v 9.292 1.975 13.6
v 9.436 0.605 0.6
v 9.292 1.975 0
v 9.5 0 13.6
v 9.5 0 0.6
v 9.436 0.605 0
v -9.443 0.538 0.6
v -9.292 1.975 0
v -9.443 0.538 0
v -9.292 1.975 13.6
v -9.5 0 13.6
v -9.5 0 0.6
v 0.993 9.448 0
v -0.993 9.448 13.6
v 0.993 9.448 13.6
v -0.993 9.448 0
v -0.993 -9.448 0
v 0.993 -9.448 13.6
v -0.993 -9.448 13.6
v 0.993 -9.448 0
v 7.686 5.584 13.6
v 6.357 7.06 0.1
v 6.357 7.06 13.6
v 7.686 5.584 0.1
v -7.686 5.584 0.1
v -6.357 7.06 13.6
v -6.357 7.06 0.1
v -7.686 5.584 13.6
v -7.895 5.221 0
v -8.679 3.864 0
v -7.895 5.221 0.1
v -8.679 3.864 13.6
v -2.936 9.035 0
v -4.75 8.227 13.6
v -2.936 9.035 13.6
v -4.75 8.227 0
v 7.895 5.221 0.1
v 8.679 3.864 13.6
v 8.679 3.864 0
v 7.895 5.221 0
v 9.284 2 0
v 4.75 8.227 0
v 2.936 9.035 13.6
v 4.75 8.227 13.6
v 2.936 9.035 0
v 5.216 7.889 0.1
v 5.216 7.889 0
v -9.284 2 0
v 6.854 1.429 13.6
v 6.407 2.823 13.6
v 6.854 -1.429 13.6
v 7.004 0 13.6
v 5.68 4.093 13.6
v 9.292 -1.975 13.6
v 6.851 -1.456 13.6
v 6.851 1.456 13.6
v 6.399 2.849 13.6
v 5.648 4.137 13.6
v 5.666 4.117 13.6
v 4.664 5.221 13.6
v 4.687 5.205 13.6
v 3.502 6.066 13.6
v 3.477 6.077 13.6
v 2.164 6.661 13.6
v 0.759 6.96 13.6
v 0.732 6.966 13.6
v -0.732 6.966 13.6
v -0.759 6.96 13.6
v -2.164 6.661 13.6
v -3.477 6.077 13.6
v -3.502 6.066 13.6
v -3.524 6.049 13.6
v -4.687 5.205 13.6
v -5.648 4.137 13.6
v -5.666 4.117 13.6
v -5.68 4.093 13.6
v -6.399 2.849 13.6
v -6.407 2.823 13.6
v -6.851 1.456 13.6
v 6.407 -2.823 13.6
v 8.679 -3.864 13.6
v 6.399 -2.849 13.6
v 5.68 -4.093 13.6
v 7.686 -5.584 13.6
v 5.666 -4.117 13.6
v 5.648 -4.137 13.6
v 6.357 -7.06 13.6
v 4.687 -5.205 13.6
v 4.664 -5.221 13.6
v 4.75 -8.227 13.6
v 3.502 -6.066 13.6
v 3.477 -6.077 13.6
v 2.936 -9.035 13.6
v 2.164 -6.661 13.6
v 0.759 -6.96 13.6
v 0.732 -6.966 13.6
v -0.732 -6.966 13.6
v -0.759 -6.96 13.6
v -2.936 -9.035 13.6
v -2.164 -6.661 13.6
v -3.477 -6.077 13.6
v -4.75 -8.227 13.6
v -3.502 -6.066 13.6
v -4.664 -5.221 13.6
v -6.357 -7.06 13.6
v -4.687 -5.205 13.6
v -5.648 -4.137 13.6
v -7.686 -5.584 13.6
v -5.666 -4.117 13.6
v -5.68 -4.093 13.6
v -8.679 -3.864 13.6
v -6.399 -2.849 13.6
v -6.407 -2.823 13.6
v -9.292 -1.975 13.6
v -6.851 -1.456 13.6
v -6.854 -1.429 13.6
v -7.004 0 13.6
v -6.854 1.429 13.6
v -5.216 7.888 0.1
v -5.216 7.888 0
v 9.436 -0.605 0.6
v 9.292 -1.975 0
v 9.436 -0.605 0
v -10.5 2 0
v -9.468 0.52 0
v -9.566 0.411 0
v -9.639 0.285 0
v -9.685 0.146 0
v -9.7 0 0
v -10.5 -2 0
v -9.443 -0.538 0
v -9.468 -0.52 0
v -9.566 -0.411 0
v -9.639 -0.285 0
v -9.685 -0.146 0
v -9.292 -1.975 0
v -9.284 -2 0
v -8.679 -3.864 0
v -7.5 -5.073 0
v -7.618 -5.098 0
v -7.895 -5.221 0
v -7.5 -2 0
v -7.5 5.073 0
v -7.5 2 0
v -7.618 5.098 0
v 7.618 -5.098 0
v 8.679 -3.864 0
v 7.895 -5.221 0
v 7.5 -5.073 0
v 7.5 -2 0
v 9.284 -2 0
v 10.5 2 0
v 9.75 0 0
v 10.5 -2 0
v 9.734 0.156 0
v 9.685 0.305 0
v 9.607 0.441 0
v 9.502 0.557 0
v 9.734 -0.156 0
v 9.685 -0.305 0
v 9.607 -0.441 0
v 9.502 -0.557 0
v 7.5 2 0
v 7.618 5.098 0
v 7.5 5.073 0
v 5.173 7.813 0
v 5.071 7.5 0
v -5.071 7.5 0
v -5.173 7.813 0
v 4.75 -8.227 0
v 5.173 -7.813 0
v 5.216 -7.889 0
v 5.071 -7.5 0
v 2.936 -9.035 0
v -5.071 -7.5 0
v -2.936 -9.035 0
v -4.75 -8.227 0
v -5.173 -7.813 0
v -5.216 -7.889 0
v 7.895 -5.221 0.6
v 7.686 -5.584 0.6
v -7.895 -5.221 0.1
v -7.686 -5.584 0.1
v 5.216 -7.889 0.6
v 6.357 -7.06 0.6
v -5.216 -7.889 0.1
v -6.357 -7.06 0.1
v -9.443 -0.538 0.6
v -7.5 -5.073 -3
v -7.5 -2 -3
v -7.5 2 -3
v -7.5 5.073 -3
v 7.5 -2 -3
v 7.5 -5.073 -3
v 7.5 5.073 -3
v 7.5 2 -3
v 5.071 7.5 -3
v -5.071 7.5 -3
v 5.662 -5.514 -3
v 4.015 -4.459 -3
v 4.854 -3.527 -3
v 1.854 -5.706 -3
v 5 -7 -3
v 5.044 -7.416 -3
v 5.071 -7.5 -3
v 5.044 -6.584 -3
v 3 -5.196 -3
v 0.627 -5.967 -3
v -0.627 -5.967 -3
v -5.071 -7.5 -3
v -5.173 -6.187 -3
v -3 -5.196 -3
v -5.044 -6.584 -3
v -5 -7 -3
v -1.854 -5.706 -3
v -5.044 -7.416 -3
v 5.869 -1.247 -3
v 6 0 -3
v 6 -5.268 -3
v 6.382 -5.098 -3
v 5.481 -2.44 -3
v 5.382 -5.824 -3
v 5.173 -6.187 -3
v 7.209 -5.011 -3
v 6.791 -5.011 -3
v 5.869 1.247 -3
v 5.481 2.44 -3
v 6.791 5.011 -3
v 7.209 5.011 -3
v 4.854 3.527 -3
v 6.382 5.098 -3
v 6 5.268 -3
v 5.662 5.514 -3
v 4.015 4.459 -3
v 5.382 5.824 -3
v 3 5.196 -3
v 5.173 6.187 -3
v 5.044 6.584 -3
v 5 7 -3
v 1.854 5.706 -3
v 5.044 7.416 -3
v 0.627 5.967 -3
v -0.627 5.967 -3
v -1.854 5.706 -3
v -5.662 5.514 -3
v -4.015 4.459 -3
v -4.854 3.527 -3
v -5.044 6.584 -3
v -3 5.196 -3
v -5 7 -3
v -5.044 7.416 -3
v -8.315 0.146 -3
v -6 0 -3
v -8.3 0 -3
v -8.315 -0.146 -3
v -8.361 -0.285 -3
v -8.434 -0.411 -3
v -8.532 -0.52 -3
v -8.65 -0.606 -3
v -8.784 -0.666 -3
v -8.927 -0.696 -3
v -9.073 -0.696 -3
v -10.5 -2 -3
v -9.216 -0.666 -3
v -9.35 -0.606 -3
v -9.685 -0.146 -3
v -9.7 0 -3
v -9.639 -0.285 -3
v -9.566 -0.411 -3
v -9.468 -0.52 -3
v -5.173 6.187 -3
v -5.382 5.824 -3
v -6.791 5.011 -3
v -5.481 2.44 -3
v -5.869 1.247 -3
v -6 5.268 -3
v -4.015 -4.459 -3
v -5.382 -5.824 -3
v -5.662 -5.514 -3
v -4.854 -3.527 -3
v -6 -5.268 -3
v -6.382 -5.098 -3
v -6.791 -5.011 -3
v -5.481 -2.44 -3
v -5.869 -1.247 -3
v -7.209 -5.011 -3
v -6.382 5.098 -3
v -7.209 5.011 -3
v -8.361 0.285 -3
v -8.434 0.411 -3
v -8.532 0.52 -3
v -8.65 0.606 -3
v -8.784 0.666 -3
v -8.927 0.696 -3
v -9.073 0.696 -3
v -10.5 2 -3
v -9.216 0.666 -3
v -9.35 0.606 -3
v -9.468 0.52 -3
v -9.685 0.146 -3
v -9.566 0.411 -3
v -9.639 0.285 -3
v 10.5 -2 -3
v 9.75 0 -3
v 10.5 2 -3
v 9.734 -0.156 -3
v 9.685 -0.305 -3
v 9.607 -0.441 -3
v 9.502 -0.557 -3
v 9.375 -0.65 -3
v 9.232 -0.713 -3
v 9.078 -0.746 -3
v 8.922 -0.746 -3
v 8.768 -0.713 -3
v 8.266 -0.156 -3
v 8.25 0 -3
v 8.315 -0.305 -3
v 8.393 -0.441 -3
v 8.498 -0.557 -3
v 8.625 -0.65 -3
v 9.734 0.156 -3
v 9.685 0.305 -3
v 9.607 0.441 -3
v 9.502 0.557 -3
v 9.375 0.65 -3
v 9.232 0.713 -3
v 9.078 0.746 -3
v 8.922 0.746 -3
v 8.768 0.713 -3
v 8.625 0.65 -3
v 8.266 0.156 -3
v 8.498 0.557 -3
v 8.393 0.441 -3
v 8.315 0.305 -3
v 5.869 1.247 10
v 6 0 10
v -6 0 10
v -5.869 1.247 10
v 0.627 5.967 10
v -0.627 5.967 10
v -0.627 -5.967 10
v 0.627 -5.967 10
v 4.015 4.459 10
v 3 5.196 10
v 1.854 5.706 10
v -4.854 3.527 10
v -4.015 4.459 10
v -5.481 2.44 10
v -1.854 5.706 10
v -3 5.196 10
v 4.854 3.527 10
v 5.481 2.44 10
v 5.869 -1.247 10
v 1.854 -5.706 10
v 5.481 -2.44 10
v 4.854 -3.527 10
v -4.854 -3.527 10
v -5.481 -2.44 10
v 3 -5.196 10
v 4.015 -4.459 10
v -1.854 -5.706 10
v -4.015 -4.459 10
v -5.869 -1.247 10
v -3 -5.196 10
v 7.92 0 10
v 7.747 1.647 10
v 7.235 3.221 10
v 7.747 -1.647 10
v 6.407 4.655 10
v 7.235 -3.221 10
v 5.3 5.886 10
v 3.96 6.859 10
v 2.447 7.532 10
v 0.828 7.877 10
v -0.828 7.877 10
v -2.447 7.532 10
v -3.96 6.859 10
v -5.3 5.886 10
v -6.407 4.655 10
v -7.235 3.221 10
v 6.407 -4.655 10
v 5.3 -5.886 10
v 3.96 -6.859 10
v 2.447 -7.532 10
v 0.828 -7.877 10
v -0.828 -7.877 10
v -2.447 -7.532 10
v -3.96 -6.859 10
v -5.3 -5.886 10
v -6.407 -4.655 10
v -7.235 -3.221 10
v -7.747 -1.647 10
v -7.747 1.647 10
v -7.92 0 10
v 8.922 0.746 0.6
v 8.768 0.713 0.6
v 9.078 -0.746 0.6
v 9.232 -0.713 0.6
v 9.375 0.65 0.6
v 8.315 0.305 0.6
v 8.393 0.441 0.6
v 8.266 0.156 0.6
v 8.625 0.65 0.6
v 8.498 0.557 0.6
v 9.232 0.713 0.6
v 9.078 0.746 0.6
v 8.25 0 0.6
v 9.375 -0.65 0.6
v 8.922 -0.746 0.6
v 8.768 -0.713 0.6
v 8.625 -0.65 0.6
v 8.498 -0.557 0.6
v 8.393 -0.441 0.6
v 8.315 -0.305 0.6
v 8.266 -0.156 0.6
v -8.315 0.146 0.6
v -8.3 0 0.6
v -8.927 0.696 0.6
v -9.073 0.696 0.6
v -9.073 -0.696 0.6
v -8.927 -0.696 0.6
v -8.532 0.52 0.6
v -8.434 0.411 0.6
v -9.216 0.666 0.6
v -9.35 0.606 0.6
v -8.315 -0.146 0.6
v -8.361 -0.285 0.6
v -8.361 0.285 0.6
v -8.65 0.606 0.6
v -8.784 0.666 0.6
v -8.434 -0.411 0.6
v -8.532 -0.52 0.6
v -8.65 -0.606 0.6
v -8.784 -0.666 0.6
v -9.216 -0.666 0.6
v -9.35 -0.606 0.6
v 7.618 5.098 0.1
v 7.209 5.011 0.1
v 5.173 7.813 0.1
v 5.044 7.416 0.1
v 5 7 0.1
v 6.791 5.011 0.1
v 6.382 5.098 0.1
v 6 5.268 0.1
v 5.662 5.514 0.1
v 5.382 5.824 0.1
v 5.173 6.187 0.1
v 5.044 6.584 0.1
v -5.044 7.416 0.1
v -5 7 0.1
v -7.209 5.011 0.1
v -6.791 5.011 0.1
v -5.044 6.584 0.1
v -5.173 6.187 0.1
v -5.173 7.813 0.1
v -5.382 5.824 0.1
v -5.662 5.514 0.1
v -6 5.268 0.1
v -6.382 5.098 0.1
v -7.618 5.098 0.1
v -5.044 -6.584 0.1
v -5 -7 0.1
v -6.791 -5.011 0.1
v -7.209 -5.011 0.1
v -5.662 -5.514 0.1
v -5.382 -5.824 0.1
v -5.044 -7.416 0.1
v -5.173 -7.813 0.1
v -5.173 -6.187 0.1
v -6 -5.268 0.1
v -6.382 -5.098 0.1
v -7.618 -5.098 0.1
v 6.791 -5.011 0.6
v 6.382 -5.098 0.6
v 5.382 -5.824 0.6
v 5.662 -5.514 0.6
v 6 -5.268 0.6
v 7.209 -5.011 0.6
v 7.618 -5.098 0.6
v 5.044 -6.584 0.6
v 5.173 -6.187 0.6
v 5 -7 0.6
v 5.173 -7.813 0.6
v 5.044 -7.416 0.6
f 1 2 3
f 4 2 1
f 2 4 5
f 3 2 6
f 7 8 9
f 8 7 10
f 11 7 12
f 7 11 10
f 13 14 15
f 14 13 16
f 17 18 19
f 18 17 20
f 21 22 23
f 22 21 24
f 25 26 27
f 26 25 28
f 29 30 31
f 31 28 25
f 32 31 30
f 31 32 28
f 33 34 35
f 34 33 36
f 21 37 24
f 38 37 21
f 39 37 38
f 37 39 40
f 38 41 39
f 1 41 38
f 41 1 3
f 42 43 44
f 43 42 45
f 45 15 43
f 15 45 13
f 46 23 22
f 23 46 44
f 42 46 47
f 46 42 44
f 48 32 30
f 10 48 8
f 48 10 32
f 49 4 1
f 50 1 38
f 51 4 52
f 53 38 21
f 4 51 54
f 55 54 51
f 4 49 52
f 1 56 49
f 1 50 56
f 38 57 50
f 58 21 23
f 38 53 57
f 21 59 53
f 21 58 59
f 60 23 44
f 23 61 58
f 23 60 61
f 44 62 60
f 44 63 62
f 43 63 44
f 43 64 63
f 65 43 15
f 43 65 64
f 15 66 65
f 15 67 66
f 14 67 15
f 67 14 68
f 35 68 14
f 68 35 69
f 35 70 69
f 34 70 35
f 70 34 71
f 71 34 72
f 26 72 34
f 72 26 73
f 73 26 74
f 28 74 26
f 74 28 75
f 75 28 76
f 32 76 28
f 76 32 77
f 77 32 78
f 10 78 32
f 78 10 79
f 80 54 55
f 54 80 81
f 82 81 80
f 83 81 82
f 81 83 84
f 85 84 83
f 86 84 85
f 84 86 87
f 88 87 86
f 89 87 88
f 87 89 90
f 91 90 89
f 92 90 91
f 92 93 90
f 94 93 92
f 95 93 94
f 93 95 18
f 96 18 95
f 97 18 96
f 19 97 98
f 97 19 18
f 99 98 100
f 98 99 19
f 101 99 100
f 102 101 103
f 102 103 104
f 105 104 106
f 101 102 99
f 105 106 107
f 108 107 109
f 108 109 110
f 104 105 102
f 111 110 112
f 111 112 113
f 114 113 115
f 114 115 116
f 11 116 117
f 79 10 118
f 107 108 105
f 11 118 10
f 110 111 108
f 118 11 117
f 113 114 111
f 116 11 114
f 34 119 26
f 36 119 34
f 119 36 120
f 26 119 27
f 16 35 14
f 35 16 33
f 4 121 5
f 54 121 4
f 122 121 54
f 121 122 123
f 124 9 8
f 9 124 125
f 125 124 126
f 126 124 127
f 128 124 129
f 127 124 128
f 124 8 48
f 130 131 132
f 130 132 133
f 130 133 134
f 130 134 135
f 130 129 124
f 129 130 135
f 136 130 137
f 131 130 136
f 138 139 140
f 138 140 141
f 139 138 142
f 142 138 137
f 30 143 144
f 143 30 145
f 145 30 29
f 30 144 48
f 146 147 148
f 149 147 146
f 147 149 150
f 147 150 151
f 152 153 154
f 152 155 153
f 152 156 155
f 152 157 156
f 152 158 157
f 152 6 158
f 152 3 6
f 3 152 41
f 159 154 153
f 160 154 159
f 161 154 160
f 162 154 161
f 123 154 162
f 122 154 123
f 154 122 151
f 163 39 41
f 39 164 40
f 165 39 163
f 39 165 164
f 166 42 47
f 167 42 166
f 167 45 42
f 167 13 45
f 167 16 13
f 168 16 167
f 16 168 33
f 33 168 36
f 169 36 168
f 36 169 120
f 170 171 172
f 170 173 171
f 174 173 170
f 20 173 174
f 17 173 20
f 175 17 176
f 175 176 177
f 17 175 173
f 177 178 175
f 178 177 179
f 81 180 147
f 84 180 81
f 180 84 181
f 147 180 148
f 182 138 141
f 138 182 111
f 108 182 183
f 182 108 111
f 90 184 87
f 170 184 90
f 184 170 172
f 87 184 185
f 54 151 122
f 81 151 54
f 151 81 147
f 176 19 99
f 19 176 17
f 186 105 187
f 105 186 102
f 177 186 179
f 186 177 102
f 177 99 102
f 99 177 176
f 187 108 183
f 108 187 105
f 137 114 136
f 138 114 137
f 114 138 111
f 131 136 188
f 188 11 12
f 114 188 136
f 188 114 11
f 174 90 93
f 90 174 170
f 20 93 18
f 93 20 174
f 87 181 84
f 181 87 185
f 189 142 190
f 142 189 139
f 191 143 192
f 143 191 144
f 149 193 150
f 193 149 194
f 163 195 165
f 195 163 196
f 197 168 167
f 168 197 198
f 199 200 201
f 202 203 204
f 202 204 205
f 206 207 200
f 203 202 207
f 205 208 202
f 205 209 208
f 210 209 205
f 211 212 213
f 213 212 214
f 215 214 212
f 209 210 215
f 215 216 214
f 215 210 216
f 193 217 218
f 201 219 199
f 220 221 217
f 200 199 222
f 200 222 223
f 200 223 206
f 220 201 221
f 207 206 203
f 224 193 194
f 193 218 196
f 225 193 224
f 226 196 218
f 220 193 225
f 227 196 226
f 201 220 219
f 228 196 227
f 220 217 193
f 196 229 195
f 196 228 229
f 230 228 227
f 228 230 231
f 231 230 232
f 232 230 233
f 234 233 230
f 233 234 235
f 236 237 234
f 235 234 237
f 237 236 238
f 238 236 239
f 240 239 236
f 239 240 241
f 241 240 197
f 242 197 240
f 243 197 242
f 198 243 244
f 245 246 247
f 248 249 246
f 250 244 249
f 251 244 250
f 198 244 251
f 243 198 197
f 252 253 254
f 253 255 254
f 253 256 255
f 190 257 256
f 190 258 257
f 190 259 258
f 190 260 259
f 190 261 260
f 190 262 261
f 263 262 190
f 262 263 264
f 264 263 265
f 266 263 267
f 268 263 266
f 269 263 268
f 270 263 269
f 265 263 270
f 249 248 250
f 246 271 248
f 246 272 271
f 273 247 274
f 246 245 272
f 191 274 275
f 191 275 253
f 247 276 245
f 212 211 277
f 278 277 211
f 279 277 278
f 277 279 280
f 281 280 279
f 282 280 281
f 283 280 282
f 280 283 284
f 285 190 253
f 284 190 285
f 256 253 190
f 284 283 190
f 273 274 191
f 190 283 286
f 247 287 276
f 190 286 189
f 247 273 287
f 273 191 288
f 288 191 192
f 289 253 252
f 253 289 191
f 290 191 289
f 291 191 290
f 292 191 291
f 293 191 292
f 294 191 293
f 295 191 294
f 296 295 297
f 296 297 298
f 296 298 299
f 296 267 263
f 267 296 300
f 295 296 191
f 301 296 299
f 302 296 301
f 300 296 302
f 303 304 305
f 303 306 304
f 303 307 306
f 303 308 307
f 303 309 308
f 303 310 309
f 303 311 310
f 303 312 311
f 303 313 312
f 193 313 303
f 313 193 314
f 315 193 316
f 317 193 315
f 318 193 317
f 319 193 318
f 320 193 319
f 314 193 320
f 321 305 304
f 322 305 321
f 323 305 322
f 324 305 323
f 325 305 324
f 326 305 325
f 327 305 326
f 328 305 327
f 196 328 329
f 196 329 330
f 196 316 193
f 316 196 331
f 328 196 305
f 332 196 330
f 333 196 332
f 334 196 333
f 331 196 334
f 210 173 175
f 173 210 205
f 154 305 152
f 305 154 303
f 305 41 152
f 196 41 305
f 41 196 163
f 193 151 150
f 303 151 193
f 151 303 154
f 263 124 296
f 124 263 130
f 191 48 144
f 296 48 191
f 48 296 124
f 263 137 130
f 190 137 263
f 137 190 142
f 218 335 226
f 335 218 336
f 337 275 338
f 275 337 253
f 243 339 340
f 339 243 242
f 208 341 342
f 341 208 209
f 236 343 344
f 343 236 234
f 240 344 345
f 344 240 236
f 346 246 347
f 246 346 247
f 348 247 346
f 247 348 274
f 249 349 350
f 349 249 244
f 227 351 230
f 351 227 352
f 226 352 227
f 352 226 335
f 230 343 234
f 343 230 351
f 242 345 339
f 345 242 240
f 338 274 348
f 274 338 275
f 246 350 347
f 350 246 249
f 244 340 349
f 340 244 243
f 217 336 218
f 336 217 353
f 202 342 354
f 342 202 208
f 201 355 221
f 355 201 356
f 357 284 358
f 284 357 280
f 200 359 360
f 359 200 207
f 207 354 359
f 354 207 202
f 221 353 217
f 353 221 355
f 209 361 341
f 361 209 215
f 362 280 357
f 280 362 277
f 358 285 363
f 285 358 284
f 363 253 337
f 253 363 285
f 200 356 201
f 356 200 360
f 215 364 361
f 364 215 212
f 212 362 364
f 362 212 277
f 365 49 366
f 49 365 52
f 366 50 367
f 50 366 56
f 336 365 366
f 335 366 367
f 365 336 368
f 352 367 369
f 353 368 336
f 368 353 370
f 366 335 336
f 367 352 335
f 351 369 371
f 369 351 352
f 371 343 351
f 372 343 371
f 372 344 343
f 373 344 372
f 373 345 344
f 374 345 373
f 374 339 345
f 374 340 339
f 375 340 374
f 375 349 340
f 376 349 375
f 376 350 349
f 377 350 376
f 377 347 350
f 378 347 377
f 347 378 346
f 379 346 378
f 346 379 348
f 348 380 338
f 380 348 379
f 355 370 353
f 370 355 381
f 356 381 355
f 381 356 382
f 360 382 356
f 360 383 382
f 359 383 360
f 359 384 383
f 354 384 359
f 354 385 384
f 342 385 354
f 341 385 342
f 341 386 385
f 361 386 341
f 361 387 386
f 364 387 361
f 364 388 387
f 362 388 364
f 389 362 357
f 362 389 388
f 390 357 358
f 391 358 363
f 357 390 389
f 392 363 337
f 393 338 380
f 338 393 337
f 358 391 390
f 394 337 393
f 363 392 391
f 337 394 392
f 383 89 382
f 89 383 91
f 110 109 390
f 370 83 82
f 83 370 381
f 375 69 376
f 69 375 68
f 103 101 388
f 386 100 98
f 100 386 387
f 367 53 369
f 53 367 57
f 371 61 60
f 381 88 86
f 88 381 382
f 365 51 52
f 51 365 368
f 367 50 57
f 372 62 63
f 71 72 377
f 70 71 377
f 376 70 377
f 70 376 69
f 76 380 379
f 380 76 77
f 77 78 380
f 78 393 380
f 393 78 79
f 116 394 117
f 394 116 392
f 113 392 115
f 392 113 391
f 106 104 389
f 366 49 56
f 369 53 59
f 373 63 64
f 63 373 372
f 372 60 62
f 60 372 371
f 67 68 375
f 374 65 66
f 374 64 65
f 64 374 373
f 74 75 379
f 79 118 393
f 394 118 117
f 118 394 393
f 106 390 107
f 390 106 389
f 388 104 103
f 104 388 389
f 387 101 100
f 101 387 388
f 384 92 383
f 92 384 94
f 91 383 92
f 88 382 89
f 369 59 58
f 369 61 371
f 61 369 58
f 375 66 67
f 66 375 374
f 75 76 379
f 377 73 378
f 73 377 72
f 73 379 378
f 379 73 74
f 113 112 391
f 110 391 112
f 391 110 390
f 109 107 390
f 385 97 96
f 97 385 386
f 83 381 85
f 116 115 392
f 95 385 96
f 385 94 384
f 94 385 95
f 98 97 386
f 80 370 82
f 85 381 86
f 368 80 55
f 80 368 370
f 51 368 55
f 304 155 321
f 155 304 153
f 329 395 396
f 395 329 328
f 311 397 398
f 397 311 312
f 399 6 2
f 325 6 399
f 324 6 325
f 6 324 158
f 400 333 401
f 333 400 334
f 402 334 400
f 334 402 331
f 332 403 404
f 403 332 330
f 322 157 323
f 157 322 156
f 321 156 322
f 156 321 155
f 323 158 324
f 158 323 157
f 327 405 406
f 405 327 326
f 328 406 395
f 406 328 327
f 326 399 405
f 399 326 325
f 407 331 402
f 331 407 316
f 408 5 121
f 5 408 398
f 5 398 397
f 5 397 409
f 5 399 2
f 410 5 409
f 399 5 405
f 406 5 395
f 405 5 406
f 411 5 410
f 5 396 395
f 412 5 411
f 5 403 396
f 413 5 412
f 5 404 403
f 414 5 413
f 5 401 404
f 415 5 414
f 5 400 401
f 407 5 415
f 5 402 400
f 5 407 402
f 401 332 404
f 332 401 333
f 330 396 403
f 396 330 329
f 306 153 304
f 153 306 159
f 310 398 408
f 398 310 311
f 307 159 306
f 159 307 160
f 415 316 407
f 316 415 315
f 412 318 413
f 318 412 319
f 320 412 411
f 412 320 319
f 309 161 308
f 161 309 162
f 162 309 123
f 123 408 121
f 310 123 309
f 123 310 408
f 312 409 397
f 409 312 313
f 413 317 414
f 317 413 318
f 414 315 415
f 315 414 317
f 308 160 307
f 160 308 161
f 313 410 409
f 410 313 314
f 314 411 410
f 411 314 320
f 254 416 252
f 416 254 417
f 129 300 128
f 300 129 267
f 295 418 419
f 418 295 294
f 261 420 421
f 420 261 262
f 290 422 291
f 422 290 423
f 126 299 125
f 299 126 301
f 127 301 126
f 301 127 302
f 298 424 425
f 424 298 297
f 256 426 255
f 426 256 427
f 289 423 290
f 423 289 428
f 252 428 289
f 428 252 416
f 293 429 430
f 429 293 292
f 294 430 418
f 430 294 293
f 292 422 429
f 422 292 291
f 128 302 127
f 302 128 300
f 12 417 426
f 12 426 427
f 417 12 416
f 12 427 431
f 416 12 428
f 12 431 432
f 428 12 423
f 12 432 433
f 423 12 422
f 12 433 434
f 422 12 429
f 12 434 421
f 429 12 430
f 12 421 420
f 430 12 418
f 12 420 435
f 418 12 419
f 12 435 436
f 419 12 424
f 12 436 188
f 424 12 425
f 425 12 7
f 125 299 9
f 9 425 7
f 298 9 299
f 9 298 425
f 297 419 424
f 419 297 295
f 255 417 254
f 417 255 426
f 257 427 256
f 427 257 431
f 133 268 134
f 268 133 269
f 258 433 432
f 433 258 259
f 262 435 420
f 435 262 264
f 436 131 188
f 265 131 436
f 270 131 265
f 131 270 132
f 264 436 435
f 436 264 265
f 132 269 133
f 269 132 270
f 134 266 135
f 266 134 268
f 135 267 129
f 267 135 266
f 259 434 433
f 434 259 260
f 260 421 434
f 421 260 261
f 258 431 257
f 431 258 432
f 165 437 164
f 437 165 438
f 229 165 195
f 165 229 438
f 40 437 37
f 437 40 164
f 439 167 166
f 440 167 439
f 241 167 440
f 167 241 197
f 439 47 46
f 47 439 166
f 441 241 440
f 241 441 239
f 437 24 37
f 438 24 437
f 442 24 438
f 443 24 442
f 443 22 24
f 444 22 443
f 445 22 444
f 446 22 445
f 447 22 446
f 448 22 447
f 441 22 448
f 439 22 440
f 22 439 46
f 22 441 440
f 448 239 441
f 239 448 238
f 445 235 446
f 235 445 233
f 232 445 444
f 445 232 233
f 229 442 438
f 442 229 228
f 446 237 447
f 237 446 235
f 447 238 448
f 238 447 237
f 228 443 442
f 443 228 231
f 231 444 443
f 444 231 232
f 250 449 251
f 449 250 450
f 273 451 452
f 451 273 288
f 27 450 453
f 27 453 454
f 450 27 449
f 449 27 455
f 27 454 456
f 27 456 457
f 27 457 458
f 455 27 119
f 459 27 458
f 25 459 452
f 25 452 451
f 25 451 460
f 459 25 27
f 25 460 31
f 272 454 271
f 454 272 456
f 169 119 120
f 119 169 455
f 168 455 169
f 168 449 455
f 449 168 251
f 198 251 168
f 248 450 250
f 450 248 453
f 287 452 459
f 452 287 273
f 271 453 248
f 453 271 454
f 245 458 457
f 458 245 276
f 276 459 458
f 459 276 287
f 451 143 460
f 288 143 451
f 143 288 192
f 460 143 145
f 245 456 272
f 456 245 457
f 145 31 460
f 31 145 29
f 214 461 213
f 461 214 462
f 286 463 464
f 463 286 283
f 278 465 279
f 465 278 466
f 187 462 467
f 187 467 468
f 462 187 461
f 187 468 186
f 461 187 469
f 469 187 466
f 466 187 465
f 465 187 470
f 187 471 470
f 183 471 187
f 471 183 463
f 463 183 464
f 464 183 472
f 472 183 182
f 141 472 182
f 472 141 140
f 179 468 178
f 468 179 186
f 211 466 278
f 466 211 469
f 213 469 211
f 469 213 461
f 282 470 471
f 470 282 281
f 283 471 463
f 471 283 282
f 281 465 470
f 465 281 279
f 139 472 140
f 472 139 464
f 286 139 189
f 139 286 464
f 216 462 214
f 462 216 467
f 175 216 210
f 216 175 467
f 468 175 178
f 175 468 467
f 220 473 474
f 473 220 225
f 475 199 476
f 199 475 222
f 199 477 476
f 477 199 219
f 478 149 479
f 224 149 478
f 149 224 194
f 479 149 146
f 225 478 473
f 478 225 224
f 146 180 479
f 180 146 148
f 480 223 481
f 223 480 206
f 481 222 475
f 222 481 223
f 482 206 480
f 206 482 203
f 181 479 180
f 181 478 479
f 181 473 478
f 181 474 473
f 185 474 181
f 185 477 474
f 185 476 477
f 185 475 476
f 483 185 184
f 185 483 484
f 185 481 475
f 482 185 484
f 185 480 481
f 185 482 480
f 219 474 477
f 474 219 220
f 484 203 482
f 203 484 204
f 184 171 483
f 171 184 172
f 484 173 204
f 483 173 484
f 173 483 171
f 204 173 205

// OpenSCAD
$fn=30;
height=13.6;
radius=7.5;
difference(){
    union(){
        cylinder(r=radius+2,h=height);
        translate([0,0,-1.5]) cube([radius*2,radius*2,3],center=true);
        translate([9,0,-1.5]) cube([radius-4.5,radius-3.5,3],center=true);
        translate([-9,0,-1.5]) cube([radius-4.5,radius-3.5,3],center=true);
        }
        translate([0,0,-10])cylinder(r=radius-1.5,h=height*2);
        translate([0,0,10])cylinder(r1=(radius-0.3)*1.1,h=height*2);
        translate([9,0,-13])cylinder(d=1.5,h=height);
        translate([-9,0,-13])cylinder(d=1.4,h=height);
        translate([7,7,-13.5])cylinder(d=4,h=height);
        translate([-7,7,-13.5])cylinder(d=4,h=height);
        translate([-7,-7,-13.5])cylinder(d=4,h=height);
        translate([7,-7,-13])cylinder(d=4,h=height);
}
